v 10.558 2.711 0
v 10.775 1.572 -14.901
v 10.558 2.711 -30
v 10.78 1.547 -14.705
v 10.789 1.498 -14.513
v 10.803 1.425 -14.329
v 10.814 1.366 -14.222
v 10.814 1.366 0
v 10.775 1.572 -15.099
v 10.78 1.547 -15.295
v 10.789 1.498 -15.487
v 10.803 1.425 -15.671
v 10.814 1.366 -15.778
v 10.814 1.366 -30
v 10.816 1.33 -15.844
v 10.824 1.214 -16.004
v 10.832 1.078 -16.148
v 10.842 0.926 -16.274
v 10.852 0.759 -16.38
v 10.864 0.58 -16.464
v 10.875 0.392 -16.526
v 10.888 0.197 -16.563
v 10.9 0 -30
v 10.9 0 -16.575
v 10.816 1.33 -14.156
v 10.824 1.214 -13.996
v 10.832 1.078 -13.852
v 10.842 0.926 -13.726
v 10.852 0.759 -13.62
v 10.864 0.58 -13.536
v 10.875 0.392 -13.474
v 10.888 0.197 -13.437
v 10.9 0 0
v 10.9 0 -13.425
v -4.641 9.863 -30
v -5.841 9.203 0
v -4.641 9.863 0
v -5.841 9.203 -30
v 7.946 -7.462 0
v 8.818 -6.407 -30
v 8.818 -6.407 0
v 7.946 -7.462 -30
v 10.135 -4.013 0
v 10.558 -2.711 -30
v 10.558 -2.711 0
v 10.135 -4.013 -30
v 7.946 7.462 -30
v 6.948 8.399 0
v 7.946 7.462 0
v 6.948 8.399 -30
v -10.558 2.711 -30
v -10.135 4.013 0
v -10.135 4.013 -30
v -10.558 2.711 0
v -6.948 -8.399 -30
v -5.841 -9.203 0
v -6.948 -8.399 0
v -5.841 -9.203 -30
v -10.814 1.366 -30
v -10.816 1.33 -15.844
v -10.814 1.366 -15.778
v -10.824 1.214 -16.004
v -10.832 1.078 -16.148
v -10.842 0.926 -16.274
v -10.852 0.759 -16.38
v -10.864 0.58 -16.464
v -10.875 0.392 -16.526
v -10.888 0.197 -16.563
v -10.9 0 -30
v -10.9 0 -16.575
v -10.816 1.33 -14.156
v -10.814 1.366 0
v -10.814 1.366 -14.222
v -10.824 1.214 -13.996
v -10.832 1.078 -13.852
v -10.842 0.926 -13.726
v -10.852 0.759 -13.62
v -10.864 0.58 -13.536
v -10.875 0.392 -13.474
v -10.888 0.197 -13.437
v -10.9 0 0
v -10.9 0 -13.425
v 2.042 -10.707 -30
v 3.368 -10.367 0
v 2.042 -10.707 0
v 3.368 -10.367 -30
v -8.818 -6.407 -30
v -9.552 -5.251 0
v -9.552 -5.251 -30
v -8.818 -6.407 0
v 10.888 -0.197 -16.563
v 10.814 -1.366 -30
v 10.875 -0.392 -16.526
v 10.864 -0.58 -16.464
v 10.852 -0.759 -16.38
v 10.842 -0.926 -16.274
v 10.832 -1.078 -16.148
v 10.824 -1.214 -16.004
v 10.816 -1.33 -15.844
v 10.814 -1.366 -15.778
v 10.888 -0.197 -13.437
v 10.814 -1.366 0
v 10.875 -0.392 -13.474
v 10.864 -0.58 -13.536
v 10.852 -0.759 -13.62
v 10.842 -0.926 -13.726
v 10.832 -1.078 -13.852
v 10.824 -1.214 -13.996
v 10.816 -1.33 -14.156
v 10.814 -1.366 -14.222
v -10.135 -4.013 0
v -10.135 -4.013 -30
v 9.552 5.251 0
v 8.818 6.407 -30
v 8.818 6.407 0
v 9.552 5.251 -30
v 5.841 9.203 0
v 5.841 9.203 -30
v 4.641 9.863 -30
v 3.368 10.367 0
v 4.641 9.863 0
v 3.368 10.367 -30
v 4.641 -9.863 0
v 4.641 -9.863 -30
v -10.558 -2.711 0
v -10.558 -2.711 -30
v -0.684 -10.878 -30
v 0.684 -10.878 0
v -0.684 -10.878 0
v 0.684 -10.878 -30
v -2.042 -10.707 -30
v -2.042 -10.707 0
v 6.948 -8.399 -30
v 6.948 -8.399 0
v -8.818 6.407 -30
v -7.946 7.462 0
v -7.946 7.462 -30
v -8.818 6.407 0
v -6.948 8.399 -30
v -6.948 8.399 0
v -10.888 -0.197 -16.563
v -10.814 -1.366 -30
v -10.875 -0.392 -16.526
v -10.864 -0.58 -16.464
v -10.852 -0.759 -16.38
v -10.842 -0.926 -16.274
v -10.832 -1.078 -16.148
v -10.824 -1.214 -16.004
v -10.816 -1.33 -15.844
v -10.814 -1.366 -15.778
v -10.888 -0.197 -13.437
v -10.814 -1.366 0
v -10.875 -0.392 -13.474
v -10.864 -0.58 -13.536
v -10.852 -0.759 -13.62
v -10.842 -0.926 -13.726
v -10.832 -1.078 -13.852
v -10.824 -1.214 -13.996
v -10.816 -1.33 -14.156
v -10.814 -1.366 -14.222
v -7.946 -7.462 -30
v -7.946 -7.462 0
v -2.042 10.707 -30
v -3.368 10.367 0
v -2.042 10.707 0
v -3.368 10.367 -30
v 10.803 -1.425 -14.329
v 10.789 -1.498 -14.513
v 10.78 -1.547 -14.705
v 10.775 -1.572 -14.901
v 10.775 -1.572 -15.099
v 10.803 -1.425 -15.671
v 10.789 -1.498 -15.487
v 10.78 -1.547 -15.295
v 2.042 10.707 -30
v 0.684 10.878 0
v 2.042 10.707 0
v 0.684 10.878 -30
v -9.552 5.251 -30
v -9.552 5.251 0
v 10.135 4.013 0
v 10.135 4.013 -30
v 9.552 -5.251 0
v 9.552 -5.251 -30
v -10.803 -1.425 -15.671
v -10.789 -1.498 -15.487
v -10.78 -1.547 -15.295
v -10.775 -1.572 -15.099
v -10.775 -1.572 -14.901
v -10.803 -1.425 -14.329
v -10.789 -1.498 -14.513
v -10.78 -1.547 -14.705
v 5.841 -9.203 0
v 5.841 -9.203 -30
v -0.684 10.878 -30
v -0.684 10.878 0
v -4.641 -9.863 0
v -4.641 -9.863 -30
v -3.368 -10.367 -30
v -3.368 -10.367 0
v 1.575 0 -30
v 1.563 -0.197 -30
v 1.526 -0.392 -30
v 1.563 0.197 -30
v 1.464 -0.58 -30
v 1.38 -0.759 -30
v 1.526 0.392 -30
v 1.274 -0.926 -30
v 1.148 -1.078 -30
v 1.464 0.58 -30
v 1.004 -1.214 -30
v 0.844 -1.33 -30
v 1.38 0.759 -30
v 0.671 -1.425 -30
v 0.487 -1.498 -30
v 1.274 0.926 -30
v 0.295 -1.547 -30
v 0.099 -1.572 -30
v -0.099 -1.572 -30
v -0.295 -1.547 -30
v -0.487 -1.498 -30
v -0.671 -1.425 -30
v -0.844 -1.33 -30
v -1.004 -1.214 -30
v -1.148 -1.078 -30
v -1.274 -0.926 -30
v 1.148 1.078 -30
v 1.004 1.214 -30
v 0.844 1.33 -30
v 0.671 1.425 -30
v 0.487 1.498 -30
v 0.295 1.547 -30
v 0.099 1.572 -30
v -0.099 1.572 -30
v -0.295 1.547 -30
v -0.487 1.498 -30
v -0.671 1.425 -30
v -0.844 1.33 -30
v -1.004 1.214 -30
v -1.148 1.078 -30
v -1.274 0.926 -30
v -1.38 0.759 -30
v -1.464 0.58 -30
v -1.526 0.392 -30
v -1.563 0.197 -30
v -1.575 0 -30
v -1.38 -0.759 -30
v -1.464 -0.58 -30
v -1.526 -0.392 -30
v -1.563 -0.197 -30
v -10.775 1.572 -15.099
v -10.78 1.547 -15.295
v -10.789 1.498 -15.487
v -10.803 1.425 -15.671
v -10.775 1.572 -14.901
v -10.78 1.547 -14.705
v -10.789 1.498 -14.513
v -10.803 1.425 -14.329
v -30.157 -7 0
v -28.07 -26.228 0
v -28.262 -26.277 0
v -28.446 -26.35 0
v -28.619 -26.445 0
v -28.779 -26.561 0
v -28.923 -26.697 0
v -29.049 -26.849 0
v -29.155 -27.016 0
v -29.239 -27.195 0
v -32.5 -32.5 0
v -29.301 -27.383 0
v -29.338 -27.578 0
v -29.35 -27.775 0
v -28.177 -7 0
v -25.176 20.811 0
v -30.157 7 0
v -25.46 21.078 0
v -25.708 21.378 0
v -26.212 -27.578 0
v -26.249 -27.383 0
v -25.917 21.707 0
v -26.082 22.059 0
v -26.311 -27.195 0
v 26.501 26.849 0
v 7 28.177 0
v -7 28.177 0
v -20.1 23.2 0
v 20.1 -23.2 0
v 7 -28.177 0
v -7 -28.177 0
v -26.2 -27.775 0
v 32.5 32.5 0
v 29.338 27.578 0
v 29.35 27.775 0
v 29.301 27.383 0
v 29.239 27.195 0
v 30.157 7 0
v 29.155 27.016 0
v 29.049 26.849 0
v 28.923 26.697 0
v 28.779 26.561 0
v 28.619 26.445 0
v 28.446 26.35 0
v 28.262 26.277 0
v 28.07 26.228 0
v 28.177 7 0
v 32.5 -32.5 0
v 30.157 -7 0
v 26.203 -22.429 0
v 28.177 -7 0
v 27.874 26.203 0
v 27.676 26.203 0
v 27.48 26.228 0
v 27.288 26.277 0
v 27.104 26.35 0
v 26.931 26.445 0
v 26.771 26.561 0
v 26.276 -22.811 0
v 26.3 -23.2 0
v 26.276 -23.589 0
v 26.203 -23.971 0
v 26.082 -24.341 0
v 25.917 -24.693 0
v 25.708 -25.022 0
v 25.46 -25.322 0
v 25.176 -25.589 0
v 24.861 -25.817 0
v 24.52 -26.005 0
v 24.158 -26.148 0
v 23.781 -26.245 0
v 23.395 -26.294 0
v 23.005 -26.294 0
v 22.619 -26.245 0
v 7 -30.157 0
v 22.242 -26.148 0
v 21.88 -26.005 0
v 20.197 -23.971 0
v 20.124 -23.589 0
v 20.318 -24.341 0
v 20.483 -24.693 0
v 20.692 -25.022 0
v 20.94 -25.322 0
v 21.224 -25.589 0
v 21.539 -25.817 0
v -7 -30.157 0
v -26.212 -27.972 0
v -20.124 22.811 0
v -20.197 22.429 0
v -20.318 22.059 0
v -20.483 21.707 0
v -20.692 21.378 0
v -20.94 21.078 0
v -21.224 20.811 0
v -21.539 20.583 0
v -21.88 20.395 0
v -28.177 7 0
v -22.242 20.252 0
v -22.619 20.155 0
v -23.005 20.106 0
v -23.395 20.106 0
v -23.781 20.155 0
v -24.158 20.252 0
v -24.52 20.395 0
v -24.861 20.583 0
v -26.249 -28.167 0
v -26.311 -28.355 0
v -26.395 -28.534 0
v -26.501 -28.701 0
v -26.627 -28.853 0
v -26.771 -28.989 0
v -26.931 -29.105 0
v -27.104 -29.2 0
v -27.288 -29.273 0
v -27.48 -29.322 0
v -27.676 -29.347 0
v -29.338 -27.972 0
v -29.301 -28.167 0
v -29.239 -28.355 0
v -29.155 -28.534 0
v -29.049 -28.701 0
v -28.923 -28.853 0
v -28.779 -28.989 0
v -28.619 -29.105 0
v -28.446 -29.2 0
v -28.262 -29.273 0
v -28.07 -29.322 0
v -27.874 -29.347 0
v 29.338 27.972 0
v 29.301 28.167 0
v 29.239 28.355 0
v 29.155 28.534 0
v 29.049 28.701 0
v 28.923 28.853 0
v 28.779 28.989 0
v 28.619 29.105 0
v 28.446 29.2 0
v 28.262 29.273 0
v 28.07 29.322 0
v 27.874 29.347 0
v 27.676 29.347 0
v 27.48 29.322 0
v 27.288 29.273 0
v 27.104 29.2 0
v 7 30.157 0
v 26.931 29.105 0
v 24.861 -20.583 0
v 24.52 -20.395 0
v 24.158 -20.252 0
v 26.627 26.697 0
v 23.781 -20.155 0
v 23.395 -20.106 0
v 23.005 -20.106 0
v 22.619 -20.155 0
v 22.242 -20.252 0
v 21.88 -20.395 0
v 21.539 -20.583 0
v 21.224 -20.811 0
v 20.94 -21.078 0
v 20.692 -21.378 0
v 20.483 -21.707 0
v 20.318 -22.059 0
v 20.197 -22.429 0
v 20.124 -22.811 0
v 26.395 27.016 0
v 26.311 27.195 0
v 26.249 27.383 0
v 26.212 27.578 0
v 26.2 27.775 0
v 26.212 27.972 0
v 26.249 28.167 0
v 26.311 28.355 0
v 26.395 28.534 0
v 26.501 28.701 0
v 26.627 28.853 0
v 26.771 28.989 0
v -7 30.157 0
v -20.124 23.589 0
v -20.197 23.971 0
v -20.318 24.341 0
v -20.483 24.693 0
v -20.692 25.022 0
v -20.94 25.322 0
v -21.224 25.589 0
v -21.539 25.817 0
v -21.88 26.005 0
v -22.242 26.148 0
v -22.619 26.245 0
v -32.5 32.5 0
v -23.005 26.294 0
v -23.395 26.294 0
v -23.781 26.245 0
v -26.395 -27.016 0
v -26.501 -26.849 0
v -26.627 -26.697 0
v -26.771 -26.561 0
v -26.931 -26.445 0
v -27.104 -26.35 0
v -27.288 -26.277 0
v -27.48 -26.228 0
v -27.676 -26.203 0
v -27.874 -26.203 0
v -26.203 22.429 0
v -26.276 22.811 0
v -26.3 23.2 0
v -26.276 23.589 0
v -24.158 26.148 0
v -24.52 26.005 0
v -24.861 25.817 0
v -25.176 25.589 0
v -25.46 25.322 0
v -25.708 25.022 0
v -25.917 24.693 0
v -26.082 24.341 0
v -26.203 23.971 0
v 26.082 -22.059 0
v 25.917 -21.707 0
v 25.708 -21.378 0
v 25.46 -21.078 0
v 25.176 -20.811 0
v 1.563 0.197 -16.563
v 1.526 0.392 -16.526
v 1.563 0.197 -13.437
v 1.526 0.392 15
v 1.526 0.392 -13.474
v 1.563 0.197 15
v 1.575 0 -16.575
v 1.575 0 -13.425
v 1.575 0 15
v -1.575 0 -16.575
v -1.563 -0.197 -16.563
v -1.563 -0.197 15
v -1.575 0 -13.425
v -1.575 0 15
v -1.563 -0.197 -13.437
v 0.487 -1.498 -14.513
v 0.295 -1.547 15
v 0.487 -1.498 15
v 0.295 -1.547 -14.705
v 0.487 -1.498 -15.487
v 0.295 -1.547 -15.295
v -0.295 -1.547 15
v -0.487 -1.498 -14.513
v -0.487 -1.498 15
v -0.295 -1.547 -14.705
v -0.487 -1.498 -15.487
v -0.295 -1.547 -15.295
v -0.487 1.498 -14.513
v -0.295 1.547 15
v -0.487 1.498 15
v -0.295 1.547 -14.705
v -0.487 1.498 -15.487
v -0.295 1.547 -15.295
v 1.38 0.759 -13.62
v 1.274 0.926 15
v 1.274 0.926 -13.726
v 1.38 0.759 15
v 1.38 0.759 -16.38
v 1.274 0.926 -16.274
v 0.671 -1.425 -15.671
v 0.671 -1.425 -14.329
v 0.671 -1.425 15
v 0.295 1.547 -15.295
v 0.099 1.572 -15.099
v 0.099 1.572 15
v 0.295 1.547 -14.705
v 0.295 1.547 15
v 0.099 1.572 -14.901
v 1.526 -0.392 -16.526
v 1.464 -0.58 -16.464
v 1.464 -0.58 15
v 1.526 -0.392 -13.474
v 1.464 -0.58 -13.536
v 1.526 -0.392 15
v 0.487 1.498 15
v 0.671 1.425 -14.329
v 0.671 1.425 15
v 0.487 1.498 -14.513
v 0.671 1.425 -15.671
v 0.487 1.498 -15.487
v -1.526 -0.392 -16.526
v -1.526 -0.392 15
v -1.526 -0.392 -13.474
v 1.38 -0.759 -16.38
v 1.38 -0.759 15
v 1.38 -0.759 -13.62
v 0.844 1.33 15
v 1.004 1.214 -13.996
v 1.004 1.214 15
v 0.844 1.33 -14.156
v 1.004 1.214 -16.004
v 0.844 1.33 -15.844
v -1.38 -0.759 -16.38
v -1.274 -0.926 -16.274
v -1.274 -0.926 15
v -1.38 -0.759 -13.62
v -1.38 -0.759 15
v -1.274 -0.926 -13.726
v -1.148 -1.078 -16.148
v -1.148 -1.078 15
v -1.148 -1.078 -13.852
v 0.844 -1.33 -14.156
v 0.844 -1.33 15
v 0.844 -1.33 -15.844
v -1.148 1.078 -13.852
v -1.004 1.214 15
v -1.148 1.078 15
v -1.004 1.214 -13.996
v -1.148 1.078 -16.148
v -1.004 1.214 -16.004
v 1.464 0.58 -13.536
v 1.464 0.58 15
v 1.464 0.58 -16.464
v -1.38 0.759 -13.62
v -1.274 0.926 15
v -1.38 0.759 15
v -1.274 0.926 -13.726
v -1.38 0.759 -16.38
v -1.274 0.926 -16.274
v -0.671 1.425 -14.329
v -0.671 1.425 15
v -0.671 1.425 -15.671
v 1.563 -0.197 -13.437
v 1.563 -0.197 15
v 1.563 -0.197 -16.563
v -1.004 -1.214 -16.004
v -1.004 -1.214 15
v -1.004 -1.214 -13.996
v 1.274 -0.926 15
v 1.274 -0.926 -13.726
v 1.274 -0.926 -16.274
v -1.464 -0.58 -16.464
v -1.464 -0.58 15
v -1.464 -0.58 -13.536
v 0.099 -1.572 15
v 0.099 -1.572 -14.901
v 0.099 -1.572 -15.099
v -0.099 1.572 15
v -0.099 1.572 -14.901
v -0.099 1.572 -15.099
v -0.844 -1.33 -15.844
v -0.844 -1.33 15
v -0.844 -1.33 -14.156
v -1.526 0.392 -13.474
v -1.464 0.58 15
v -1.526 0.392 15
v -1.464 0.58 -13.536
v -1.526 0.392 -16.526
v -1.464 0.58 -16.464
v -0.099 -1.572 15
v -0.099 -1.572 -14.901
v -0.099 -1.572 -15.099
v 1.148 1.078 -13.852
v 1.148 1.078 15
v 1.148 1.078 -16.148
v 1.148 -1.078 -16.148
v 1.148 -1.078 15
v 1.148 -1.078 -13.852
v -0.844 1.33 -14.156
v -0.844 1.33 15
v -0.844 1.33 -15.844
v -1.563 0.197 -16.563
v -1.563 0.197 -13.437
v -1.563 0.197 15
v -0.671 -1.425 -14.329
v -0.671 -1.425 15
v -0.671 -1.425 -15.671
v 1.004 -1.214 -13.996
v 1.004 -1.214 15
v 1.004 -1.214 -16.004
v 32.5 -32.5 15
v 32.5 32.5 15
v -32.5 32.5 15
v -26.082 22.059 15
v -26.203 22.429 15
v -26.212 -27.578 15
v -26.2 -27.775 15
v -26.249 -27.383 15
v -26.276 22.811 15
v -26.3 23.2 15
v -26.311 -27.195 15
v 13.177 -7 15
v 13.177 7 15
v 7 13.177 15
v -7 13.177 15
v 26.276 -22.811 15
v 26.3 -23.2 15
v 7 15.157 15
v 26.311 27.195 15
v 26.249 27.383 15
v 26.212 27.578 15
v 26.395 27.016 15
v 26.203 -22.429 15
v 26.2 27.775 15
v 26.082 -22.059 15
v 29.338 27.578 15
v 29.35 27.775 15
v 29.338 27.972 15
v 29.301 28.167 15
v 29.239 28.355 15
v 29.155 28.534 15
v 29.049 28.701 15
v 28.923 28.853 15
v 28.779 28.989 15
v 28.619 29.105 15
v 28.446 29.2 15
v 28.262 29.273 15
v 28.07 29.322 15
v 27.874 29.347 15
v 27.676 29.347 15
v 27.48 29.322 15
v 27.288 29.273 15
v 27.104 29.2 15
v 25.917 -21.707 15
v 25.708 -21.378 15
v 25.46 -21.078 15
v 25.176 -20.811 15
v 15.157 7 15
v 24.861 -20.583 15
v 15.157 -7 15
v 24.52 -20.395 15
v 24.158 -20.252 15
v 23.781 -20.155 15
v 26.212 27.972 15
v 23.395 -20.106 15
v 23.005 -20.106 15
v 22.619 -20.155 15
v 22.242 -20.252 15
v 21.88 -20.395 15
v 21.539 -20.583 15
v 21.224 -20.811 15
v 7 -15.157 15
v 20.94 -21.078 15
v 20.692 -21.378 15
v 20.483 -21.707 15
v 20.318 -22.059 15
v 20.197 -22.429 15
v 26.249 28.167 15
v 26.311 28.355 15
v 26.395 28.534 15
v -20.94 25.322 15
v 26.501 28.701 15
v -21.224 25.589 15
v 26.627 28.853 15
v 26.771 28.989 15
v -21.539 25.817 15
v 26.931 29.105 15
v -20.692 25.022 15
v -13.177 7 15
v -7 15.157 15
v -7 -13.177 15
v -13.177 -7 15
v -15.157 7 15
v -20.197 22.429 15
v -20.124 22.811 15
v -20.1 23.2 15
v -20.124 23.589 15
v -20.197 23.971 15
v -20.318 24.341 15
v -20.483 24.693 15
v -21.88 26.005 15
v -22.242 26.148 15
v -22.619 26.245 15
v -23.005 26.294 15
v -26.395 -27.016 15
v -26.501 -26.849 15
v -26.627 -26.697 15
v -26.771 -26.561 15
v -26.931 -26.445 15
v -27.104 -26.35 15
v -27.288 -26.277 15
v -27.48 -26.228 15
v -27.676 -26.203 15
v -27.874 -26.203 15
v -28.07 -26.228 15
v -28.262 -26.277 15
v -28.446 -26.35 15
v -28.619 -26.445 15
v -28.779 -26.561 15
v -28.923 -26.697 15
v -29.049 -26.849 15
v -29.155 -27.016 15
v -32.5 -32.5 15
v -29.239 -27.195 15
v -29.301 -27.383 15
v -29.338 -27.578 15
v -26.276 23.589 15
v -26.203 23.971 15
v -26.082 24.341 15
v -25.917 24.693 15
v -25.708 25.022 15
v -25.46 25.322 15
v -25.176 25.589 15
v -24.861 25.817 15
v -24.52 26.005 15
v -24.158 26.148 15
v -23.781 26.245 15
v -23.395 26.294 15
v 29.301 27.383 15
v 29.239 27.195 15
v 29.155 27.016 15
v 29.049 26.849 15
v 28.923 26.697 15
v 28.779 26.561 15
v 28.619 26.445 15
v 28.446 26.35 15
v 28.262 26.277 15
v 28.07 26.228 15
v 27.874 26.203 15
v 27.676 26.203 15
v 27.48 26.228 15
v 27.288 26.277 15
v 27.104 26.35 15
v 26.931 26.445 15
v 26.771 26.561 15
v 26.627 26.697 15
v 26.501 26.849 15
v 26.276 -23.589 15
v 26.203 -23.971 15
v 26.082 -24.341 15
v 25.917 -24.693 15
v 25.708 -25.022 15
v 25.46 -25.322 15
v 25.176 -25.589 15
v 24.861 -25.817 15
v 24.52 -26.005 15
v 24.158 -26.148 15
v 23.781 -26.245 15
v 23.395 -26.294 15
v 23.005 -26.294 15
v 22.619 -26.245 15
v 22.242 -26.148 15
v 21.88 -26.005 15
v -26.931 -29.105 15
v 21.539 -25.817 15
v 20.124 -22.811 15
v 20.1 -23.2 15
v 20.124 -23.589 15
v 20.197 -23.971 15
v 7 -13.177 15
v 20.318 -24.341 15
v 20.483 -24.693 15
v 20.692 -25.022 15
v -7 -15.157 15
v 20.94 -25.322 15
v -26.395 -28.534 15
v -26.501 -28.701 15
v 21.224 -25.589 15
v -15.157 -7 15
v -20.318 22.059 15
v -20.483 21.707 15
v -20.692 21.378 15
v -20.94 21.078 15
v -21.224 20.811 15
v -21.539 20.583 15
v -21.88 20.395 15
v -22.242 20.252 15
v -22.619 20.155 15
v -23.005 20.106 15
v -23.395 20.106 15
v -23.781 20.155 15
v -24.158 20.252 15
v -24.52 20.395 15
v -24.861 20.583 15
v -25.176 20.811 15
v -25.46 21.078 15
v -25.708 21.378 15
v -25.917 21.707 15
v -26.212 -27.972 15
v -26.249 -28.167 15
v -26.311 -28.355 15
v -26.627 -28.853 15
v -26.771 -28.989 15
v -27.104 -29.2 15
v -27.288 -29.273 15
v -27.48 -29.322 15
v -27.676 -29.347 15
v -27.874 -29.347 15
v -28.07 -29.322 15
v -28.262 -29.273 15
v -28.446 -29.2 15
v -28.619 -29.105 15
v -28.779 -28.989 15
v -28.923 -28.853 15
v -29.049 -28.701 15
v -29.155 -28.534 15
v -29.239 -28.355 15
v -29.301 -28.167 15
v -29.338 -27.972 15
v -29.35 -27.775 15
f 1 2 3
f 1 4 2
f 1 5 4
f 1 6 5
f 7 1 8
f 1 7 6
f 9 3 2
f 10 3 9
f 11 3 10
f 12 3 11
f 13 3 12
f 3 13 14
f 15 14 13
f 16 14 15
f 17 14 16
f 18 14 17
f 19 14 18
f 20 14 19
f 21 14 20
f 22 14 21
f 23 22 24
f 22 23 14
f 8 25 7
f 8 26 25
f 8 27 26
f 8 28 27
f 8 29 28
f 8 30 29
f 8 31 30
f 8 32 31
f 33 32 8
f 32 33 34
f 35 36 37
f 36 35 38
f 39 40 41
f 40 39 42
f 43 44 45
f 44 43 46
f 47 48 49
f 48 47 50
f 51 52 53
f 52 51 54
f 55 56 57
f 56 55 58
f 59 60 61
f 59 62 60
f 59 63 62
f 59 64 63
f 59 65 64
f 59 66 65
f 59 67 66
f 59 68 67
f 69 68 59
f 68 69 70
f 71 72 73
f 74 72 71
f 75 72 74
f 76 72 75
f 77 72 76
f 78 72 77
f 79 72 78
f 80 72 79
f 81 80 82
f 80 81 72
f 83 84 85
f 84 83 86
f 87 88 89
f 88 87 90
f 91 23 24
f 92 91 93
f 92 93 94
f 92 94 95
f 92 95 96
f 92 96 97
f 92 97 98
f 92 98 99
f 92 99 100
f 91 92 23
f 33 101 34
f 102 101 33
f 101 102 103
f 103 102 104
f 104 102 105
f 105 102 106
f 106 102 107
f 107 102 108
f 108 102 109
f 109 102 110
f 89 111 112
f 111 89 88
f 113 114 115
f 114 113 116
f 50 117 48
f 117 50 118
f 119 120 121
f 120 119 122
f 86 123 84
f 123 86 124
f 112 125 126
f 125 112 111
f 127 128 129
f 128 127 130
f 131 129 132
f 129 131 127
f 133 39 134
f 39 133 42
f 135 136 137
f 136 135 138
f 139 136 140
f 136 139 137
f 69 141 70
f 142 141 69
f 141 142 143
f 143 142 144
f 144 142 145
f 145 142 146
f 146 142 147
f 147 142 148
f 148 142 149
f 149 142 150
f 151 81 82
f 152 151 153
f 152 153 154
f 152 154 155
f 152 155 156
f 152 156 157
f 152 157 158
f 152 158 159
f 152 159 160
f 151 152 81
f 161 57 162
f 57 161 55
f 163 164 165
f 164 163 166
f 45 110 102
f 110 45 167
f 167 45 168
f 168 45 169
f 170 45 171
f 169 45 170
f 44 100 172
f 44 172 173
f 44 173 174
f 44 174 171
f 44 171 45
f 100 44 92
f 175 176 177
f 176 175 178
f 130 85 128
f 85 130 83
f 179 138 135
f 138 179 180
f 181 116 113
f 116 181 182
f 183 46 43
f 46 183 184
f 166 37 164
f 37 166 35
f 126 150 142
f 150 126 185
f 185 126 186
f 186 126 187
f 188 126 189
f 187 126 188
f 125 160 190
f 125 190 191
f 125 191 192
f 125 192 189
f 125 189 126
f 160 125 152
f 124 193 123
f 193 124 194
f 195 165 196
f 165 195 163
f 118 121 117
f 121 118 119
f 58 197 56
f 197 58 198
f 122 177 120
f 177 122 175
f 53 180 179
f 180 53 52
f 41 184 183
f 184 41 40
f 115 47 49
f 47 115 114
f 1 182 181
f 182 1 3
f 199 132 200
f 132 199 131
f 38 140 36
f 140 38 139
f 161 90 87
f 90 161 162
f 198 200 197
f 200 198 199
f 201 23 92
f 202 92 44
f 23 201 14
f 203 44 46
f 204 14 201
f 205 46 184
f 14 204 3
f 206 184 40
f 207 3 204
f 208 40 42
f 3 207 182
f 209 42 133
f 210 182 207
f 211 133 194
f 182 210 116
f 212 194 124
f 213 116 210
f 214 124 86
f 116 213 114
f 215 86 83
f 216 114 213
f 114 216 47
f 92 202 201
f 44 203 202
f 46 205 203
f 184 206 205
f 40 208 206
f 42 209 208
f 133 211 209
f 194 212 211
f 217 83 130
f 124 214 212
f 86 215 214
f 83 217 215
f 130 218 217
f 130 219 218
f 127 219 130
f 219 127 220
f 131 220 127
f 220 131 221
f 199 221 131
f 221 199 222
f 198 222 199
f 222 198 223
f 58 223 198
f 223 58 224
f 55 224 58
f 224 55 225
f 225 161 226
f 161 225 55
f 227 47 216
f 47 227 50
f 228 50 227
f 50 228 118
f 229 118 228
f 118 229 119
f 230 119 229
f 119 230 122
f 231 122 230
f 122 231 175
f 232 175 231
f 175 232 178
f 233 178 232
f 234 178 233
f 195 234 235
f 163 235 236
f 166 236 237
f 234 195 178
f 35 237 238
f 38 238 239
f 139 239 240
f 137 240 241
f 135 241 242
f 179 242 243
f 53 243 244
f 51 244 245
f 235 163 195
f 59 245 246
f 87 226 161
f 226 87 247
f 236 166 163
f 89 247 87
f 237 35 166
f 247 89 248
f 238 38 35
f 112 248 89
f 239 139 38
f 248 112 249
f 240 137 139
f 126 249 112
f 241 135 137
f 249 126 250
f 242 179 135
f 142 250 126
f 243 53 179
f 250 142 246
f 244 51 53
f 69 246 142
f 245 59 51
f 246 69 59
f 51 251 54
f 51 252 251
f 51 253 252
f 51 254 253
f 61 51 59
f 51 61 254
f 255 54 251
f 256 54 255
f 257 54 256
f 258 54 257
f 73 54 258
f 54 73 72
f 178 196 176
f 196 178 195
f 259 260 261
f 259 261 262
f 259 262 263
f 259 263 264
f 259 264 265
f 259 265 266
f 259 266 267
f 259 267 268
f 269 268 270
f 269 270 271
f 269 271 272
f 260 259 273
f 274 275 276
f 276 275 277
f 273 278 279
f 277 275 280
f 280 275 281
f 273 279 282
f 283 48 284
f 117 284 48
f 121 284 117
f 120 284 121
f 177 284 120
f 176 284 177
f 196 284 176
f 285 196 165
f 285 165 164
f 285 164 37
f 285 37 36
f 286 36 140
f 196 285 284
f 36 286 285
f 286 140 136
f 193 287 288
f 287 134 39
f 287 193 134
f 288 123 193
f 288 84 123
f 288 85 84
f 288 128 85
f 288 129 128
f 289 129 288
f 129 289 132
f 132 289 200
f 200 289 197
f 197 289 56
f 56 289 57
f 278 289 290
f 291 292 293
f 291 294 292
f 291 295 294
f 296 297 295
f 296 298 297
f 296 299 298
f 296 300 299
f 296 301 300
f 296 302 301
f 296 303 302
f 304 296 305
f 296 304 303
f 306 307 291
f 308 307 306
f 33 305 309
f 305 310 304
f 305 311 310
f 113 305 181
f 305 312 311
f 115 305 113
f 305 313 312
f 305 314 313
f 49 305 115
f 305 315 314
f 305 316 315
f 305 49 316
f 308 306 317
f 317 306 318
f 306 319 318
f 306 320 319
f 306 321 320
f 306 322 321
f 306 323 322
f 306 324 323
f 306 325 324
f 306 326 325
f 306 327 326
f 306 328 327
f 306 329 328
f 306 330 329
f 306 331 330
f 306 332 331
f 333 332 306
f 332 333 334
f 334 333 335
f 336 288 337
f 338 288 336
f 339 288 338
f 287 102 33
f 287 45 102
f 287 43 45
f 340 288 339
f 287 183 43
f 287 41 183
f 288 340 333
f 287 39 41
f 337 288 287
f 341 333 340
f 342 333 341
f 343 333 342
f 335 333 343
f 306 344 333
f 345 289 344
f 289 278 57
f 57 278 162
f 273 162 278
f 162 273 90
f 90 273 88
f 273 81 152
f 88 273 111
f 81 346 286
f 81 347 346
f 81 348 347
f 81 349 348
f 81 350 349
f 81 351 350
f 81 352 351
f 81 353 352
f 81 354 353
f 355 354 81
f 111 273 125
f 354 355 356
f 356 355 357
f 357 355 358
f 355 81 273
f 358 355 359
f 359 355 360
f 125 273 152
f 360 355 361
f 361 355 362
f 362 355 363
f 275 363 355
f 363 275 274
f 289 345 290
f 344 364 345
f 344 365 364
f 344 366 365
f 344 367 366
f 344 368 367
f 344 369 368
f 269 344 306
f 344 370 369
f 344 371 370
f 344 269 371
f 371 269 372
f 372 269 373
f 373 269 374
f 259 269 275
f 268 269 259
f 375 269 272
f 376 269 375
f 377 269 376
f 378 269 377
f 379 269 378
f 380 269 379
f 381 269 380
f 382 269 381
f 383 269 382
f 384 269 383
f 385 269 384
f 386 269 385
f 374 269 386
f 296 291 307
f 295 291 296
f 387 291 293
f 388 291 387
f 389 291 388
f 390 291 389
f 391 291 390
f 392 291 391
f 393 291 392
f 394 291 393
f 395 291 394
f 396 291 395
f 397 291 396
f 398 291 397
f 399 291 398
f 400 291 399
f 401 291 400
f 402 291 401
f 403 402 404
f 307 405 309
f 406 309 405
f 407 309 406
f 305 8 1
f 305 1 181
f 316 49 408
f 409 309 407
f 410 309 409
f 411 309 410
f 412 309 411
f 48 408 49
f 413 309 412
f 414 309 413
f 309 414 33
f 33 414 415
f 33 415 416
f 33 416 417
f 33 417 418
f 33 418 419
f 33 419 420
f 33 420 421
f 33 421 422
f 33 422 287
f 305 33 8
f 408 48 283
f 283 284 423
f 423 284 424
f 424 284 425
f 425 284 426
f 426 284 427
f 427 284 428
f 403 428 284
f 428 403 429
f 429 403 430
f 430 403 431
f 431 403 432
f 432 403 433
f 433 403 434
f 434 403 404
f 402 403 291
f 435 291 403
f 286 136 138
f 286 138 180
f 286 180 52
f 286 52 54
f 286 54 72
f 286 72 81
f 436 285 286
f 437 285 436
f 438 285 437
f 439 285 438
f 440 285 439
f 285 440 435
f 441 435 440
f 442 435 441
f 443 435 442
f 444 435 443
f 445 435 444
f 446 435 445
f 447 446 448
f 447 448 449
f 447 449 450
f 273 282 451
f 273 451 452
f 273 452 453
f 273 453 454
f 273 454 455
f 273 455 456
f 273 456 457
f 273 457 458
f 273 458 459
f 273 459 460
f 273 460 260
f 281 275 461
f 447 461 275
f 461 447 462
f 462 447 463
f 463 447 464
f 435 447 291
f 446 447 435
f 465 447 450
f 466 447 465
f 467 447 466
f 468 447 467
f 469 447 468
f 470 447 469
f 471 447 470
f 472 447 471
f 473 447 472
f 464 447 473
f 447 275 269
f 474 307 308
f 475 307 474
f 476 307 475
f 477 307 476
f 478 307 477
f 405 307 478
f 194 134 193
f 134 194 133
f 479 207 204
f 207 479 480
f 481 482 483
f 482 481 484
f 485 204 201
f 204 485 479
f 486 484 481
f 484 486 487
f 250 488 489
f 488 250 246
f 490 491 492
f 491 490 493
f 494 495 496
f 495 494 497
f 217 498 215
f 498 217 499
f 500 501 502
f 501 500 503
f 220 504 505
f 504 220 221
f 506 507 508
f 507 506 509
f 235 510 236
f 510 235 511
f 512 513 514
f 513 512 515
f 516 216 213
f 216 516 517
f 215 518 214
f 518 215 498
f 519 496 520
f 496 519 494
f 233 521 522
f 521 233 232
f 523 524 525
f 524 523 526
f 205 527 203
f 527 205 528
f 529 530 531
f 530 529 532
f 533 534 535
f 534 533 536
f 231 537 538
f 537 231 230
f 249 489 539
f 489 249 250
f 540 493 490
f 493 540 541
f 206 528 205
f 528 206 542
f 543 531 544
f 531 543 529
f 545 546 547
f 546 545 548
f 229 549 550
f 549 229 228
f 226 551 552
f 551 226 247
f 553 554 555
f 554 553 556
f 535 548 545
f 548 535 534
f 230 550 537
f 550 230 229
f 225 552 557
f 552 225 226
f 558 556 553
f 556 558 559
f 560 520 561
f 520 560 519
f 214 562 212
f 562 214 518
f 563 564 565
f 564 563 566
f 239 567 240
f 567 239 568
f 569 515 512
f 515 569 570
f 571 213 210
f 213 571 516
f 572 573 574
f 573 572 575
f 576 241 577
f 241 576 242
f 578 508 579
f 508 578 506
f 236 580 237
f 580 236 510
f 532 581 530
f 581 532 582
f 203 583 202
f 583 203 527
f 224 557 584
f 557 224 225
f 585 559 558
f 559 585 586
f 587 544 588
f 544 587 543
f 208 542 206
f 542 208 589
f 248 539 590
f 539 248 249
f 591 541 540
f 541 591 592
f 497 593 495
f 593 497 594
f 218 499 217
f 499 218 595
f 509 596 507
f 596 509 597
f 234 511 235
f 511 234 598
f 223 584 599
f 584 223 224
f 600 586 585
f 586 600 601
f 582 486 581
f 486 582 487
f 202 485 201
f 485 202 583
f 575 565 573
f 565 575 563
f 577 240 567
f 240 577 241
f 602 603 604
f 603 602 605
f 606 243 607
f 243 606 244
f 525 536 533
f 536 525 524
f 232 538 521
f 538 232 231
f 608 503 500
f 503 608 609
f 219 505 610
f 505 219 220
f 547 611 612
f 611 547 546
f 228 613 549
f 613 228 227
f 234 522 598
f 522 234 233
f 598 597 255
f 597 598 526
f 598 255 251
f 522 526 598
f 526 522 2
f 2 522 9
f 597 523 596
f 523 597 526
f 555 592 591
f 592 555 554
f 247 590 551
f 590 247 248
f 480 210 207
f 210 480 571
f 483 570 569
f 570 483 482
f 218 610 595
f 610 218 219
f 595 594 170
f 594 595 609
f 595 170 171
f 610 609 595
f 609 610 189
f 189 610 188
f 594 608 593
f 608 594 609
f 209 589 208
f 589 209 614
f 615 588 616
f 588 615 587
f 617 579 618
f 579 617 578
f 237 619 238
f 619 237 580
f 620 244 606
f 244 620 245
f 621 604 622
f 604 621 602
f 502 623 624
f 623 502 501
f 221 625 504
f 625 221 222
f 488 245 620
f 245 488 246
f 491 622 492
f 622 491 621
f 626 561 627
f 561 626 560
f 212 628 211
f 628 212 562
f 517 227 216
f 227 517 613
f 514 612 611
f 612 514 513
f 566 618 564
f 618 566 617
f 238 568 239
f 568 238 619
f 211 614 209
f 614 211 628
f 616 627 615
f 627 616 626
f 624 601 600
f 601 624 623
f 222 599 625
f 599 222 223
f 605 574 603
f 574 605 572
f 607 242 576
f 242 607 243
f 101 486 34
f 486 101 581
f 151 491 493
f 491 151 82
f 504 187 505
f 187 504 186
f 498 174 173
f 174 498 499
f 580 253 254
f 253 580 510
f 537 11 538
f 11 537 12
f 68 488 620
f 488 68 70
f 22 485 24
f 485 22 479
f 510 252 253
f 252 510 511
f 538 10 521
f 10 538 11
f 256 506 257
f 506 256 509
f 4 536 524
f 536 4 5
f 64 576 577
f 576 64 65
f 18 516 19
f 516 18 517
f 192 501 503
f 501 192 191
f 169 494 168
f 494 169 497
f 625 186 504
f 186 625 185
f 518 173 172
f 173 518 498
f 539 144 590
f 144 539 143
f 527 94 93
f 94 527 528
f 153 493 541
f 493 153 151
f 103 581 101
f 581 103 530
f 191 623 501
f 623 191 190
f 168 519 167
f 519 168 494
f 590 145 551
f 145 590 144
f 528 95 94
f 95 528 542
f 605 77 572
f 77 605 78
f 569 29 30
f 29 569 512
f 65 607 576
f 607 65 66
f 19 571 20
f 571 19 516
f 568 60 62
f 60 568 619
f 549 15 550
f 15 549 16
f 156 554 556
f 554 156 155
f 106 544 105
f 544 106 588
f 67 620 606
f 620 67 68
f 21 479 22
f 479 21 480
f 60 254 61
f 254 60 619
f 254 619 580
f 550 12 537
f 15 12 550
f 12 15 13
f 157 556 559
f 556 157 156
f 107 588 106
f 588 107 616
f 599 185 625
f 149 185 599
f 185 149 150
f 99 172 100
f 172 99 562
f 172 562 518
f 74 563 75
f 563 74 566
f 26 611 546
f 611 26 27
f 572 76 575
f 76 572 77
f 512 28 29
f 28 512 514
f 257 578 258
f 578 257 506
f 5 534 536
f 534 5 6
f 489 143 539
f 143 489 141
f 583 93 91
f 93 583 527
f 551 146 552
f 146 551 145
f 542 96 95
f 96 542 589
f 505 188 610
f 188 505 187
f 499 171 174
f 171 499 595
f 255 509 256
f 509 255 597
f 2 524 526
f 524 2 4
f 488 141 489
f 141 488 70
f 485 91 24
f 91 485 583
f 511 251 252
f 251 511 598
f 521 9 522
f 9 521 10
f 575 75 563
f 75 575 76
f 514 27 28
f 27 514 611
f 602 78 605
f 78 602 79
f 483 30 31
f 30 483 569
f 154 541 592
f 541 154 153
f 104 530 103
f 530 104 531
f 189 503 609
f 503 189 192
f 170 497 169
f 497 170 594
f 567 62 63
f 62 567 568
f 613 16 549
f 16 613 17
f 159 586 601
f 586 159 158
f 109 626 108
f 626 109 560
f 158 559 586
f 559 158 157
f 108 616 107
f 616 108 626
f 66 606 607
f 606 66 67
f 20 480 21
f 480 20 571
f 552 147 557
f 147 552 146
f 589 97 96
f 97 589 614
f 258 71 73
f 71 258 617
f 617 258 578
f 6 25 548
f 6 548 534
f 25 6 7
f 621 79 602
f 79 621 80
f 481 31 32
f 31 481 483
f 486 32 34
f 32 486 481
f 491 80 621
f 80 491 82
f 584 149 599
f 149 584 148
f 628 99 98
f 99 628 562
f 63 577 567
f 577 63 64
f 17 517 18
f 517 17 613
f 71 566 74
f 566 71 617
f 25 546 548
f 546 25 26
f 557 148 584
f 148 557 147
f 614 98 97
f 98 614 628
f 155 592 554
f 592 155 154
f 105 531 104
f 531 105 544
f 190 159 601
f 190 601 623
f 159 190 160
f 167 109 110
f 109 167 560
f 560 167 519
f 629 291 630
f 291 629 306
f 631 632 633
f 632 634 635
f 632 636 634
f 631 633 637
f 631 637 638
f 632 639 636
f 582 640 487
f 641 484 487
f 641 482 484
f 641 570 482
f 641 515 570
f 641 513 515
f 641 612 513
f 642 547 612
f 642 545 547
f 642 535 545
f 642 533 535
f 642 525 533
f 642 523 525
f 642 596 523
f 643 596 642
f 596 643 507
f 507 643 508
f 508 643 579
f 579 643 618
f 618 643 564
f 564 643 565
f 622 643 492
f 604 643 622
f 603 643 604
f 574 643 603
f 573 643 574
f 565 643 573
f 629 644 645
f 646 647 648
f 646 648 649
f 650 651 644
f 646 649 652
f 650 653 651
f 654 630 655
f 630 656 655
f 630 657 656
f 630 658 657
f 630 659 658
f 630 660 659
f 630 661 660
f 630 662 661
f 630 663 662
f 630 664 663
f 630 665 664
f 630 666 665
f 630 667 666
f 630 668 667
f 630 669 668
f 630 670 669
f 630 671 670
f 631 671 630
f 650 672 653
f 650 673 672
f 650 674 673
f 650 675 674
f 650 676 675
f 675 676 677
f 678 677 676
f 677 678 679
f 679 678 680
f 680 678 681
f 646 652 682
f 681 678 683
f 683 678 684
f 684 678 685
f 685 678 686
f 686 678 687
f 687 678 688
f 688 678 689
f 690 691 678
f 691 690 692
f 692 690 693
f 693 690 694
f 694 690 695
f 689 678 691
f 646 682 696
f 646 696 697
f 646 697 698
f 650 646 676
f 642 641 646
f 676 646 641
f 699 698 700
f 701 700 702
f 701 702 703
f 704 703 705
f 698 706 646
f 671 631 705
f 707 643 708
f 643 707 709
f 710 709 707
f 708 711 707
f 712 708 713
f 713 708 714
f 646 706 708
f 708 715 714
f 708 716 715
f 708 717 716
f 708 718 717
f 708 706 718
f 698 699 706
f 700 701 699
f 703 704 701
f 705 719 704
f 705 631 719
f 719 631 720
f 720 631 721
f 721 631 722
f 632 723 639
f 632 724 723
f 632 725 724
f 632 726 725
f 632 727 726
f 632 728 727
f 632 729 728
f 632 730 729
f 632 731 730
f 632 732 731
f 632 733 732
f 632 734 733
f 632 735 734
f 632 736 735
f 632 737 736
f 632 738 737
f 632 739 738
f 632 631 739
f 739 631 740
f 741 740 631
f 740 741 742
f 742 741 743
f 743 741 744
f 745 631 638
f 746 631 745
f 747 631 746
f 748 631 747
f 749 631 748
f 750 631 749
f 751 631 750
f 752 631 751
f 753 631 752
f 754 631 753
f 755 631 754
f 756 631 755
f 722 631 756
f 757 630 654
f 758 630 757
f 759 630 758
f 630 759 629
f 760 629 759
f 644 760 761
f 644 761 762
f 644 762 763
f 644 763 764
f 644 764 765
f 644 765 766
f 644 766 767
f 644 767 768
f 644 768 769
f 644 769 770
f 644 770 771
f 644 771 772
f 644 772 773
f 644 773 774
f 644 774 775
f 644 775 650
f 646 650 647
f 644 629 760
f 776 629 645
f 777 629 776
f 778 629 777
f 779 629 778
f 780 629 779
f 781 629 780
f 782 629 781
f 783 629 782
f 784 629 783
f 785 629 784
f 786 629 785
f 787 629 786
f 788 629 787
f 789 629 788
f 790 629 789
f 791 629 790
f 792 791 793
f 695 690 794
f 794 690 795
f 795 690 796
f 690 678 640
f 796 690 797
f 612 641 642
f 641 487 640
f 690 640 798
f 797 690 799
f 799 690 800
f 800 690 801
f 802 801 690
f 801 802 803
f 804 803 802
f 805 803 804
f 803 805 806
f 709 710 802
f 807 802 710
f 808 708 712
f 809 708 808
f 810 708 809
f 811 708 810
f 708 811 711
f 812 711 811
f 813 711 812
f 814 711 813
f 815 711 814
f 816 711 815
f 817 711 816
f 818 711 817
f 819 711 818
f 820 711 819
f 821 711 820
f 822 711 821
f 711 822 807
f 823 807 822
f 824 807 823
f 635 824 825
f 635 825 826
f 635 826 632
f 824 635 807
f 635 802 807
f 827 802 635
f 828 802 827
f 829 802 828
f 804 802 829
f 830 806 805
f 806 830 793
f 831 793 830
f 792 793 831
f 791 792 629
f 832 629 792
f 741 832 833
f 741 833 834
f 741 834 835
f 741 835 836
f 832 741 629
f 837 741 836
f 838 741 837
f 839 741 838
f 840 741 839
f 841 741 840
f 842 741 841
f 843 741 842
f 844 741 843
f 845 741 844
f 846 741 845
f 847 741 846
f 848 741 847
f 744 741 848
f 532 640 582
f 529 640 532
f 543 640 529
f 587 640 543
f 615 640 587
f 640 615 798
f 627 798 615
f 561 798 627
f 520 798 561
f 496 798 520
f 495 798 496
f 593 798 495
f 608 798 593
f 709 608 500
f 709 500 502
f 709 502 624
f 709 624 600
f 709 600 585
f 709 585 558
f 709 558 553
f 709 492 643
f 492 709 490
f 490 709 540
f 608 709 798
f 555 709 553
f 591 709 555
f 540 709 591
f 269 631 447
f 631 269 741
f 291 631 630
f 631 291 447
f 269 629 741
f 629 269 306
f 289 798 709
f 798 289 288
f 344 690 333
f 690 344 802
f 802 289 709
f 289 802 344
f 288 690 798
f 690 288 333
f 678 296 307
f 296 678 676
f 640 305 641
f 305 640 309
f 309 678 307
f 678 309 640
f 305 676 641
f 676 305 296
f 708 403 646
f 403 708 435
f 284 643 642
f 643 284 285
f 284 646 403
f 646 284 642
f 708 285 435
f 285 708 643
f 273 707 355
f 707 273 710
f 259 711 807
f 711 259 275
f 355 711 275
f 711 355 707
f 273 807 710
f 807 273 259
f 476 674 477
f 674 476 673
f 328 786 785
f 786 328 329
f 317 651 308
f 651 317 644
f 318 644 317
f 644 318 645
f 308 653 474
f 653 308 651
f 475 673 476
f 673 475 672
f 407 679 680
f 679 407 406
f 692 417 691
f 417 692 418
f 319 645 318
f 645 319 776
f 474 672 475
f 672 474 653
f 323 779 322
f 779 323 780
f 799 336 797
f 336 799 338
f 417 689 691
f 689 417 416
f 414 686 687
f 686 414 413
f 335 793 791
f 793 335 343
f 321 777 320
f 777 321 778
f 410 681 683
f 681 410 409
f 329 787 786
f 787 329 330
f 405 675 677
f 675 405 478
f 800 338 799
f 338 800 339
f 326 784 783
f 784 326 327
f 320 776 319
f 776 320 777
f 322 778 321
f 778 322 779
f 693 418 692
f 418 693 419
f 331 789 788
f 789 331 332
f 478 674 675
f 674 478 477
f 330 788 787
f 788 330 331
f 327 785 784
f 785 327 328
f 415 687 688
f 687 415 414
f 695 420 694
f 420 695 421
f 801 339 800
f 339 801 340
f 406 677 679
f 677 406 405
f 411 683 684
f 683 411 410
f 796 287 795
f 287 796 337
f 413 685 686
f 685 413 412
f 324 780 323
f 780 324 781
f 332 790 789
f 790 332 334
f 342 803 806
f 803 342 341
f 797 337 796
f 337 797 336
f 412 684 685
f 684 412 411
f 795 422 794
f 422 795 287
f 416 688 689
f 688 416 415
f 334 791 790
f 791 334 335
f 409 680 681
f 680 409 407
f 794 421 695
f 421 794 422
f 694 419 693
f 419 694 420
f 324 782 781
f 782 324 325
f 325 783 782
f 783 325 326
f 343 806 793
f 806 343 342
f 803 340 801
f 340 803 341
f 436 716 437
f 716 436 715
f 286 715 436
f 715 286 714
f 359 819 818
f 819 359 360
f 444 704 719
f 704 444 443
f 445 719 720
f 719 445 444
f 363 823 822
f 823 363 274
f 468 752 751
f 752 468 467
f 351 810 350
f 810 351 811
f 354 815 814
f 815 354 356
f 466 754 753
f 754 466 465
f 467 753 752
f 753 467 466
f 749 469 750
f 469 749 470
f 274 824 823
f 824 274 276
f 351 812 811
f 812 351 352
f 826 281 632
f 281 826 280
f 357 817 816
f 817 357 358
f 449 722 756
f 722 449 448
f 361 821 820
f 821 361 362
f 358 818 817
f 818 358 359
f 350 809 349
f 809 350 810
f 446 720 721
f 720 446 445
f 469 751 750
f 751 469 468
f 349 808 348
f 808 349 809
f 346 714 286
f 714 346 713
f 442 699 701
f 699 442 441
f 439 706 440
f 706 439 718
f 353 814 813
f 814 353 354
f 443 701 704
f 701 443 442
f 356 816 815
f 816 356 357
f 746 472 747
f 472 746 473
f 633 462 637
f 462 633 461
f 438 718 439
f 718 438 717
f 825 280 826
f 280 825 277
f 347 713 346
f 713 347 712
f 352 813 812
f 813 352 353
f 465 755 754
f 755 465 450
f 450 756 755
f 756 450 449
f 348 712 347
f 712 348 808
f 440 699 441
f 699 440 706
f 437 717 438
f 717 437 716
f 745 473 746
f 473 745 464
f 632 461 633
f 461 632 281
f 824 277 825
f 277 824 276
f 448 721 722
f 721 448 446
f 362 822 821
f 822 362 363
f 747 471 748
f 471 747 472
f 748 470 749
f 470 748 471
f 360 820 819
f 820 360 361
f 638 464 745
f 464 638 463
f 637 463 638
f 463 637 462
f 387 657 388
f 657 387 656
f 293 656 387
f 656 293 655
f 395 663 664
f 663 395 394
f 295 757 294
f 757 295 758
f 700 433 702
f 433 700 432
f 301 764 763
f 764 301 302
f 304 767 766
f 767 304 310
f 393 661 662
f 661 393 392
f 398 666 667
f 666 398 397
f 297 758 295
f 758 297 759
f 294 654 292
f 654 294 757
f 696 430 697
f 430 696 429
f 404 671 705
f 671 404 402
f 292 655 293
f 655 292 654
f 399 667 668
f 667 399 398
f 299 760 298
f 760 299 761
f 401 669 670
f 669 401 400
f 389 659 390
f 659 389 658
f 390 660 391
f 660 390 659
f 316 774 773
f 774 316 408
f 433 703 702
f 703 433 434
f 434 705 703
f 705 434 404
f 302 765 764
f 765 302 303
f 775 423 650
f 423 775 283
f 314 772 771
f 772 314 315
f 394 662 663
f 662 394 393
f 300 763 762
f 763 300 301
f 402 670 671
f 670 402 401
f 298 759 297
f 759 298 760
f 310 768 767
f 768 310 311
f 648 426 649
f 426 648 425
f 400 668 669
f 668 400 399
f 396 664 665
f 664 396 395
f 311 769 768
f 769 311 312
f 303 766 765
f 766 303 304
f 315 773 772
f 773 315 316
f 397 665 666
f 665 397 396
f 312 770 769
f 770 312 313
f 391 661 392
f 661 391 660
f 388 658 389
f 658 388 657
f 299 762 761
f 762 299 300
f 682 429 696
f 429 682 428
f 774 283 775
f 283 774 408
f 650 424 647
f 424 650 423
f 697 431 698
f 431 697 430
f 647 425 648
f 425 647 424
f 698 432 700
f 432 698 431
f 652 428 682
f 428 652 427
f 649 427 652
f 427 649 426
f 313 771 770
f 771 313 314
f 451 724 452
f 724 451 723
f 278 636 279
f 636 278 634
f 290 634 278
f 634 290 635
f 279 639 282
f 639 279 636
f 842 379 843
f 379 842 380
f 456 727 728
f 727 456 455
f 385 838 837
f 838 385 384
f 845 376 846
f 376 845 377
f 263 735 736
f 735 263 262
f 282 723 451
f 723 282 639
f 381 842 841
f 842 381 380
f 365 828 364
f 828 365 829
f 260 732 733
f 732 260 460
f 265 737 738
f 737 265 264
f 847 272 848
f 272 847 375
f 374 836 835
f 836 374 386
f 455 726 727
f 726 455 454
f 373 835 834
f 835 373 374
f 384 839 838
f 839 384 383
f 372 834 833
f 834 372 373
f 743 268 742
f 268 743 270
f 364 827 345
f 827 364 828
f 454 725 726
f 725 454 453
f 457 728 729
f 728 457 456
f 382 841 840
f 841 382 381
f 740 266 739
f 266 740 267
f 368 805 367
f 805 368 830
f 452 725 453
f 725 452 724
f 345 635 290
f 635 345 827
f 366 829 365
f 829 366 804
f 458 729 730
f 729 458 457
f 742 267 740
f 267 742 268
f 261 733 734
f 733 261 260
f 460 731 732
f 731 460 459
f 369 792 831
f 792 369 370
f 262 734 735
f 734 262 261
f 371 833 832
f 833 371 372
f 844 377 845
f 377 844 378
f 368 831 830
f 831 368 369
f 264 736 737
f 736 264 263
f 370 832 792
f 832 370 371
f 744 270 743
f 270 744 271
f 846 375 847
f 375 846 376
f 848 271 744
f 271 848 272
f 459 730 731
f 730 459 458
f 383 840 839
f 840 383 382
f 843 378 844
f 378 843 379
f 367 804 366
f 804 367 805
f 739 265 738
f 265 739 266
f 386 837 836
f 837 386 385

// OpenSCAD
//------------------------------------------------
// 1 - Ground Plane Antenna - lower part
//
// author: Alessandro Paganelli 
// e-mail: alessandro.paganelli@gmail.com
// github: https://github.com/allep
// license: GPL-3.0-or-later
// 
// Description
// This is the lower part of the ground plane antenna head.
//
// All sizes are expressed in mm.
//------------------------------------------------

// Set face number to a sufficiently high number.
$fn = 50;

//------------------------------------------------
// Debug mode
// Set DEBUG_MODE to 1 to simulate the actual 
// screw positions, to validate the design.
DEBUG_MODE = 0;

//------------------------------------------------
// Variables

// Screws
// M3 screws - 1.5 + 5% tolerance
SCREW_RADIUS = 1.575;
SCREW_DEPTH = 20.0;

// Cables holes
// RG58 radius is approx 5 mm, so keep some safe margin here
CABLE_HOLE_RADIUS = 3.1;

// Boom connector
BOOM_CONNECTOR_HEIGHT = 30.0;
BOOM_CONNECTOR_RADIUS = 10.90;
BOOM_CONNECTOR_SCREW_HEIGHT = 20.0;

BASE_SIDE_MM = 65.0;
BASE_THICKNESS_MM = 15.0;

// Reflectors
REFLECTOR_SIDE_MM = 14.0;
REFLECTOR_LENGTH_MM = 60.0;
REFLECTOR_THICKNESS_MM = 1.4;
REFLECTOR_HOLE_DIAM_MM = 5.0;
REFLECTOR_INCLINATION_ANGLE_DEGREES = 45.0;

//------------------------------------------------
// Modules

// Boom connector
module boom_connector(radius, height, screw_radius) {
    difference() {
        cylinder(h = height, r = radius, center = true);
        
        // reinforcement central screw
        cylinder(h = height, r = screw_radius, center = true);
        
        // side screw
        rotate([0, 90, 0])
        cylinder(h = 2*radius, r = screw_radius, center = true);
    }
}

// Reflector part
// To be subtracted from the assembly
module reflector(reflector_side_mm, reflector_length_mm, reflector_tickness_mm, inclination_angle_degrees) {
    rotate([inclination_angle_degrees, 0, 0])
    cube(size = [reflector_side_mm, reflector_length_mm, reflector_tickness_mm], center = true);
}

// Square base
module square_base(base_side_mm, 
                   base_thickness_mm,
                   reflector_side_mm,
                   reflector_length_mm,
                   reflector_tickness_mm,
                   reflector_inclination_angle_degrees,
                   screw_radius_mm,
                   cable_radius_mm)
{
    reflector_hole_displacement_mm = base_side_mm / 3;
    screw_hole_displacement_mm = base_side_mm / 2 - 3 * screw_radius_mm;
    cable_hole_displacement_mm = base_side_mm / 2 - 3 * cable_radius_mm;
                       
    difference() {
        // The actual base
        cube(size = [base_side_mm, base_side_mm, base_thickness_mm], center = true);
        
        // The reflectors holes
        translate([0, -reflector_hole_displacement_mm, 0])
        reflector(reflector_side_mm, reflector_length_mm, reflector_tickness_mm, reflector_inclination_angle_degrees);
        rotate([0, 0, 90])
        translate([0, -reflector_hole_displacement_mm, 0])
        reflector(reflector_side_mm, reflector_length_mm, reflector_tickness_mm, reflector_inclination_angle_degrees);
        rotate([0, 0, 180])
        translate([0, -reflector_hole_displacement_mm, 0])
        reflector(reflector_side_mm, reflector_length_mm, reflector_tickness_mm, reflector_inclination_angle_degrees);
        rotate([0, 0, 270])
        translate([0, -reflector_hole_displacement_mm, 0])
        reflector(reflector_side_mm, reflector_length_mm, reflector_tickness_mm, reflector_inclination_angle_degrees);
        
        // cable holes (only one is needed, but this way we have simmetry)
        translate([cable_hole_displacement_mm, - cable_hole_displacement_mm, 0])
        cylinder(h = base_thickness_mm, r = cable_radius_mm, center = true);
        translate([- cable_hole_displacement_mm, cable_hole_displacement_mm, 0])
        cylinder(h = base_thickness_mm, r = cable_radius_mm, center = true);
        
        // screw holes
        translate([screw_hole_displacement_mm, screw_hole_displacement_mm, 0])
        cylinder(h = base_thickness_mm, r = screw_radius_mm, center = true);
        translate([- screw_hole_displacement_mm, - screw_hole_displacement_mm, 0])
        cylinder(h = base_thickness_mm, r = screw_radius_mm, center = true); 
        
        // central screw hole
        cylinder(h = base_thickness_mm, r = screw_radius_mm, center = true);
    }
}

//------------------------------------------------
// Actual script

if (DEBUG_MODE == 0) {
    // release mode

    union() {
        translate([0, 0, BASE_THICKNESS_MM / 2])
        square_base(BASE_SIDE_MM, BASE_THICKNESS_MM, REFLECTOR_SIDE_MM, REFLECTOR_LENGTH_MM, REFLECTOR_THICKNESS_MM, REFLECTOR_INCLINATION_ANGLE_DEGREES, SCREW_RADIUS, CABLE_HOLE_RADIUS);
        
        translate([0, 0, - BOOM_CONNECTOR_HEIGHT / 2])
        boom_connector(BOOM_CONNECTOR_RADIUS, BOOM_CONNECTOR_HEIGHT, SCREW_RADIUS);
    }
}
else {
    // debug mode
    // TODO
}
